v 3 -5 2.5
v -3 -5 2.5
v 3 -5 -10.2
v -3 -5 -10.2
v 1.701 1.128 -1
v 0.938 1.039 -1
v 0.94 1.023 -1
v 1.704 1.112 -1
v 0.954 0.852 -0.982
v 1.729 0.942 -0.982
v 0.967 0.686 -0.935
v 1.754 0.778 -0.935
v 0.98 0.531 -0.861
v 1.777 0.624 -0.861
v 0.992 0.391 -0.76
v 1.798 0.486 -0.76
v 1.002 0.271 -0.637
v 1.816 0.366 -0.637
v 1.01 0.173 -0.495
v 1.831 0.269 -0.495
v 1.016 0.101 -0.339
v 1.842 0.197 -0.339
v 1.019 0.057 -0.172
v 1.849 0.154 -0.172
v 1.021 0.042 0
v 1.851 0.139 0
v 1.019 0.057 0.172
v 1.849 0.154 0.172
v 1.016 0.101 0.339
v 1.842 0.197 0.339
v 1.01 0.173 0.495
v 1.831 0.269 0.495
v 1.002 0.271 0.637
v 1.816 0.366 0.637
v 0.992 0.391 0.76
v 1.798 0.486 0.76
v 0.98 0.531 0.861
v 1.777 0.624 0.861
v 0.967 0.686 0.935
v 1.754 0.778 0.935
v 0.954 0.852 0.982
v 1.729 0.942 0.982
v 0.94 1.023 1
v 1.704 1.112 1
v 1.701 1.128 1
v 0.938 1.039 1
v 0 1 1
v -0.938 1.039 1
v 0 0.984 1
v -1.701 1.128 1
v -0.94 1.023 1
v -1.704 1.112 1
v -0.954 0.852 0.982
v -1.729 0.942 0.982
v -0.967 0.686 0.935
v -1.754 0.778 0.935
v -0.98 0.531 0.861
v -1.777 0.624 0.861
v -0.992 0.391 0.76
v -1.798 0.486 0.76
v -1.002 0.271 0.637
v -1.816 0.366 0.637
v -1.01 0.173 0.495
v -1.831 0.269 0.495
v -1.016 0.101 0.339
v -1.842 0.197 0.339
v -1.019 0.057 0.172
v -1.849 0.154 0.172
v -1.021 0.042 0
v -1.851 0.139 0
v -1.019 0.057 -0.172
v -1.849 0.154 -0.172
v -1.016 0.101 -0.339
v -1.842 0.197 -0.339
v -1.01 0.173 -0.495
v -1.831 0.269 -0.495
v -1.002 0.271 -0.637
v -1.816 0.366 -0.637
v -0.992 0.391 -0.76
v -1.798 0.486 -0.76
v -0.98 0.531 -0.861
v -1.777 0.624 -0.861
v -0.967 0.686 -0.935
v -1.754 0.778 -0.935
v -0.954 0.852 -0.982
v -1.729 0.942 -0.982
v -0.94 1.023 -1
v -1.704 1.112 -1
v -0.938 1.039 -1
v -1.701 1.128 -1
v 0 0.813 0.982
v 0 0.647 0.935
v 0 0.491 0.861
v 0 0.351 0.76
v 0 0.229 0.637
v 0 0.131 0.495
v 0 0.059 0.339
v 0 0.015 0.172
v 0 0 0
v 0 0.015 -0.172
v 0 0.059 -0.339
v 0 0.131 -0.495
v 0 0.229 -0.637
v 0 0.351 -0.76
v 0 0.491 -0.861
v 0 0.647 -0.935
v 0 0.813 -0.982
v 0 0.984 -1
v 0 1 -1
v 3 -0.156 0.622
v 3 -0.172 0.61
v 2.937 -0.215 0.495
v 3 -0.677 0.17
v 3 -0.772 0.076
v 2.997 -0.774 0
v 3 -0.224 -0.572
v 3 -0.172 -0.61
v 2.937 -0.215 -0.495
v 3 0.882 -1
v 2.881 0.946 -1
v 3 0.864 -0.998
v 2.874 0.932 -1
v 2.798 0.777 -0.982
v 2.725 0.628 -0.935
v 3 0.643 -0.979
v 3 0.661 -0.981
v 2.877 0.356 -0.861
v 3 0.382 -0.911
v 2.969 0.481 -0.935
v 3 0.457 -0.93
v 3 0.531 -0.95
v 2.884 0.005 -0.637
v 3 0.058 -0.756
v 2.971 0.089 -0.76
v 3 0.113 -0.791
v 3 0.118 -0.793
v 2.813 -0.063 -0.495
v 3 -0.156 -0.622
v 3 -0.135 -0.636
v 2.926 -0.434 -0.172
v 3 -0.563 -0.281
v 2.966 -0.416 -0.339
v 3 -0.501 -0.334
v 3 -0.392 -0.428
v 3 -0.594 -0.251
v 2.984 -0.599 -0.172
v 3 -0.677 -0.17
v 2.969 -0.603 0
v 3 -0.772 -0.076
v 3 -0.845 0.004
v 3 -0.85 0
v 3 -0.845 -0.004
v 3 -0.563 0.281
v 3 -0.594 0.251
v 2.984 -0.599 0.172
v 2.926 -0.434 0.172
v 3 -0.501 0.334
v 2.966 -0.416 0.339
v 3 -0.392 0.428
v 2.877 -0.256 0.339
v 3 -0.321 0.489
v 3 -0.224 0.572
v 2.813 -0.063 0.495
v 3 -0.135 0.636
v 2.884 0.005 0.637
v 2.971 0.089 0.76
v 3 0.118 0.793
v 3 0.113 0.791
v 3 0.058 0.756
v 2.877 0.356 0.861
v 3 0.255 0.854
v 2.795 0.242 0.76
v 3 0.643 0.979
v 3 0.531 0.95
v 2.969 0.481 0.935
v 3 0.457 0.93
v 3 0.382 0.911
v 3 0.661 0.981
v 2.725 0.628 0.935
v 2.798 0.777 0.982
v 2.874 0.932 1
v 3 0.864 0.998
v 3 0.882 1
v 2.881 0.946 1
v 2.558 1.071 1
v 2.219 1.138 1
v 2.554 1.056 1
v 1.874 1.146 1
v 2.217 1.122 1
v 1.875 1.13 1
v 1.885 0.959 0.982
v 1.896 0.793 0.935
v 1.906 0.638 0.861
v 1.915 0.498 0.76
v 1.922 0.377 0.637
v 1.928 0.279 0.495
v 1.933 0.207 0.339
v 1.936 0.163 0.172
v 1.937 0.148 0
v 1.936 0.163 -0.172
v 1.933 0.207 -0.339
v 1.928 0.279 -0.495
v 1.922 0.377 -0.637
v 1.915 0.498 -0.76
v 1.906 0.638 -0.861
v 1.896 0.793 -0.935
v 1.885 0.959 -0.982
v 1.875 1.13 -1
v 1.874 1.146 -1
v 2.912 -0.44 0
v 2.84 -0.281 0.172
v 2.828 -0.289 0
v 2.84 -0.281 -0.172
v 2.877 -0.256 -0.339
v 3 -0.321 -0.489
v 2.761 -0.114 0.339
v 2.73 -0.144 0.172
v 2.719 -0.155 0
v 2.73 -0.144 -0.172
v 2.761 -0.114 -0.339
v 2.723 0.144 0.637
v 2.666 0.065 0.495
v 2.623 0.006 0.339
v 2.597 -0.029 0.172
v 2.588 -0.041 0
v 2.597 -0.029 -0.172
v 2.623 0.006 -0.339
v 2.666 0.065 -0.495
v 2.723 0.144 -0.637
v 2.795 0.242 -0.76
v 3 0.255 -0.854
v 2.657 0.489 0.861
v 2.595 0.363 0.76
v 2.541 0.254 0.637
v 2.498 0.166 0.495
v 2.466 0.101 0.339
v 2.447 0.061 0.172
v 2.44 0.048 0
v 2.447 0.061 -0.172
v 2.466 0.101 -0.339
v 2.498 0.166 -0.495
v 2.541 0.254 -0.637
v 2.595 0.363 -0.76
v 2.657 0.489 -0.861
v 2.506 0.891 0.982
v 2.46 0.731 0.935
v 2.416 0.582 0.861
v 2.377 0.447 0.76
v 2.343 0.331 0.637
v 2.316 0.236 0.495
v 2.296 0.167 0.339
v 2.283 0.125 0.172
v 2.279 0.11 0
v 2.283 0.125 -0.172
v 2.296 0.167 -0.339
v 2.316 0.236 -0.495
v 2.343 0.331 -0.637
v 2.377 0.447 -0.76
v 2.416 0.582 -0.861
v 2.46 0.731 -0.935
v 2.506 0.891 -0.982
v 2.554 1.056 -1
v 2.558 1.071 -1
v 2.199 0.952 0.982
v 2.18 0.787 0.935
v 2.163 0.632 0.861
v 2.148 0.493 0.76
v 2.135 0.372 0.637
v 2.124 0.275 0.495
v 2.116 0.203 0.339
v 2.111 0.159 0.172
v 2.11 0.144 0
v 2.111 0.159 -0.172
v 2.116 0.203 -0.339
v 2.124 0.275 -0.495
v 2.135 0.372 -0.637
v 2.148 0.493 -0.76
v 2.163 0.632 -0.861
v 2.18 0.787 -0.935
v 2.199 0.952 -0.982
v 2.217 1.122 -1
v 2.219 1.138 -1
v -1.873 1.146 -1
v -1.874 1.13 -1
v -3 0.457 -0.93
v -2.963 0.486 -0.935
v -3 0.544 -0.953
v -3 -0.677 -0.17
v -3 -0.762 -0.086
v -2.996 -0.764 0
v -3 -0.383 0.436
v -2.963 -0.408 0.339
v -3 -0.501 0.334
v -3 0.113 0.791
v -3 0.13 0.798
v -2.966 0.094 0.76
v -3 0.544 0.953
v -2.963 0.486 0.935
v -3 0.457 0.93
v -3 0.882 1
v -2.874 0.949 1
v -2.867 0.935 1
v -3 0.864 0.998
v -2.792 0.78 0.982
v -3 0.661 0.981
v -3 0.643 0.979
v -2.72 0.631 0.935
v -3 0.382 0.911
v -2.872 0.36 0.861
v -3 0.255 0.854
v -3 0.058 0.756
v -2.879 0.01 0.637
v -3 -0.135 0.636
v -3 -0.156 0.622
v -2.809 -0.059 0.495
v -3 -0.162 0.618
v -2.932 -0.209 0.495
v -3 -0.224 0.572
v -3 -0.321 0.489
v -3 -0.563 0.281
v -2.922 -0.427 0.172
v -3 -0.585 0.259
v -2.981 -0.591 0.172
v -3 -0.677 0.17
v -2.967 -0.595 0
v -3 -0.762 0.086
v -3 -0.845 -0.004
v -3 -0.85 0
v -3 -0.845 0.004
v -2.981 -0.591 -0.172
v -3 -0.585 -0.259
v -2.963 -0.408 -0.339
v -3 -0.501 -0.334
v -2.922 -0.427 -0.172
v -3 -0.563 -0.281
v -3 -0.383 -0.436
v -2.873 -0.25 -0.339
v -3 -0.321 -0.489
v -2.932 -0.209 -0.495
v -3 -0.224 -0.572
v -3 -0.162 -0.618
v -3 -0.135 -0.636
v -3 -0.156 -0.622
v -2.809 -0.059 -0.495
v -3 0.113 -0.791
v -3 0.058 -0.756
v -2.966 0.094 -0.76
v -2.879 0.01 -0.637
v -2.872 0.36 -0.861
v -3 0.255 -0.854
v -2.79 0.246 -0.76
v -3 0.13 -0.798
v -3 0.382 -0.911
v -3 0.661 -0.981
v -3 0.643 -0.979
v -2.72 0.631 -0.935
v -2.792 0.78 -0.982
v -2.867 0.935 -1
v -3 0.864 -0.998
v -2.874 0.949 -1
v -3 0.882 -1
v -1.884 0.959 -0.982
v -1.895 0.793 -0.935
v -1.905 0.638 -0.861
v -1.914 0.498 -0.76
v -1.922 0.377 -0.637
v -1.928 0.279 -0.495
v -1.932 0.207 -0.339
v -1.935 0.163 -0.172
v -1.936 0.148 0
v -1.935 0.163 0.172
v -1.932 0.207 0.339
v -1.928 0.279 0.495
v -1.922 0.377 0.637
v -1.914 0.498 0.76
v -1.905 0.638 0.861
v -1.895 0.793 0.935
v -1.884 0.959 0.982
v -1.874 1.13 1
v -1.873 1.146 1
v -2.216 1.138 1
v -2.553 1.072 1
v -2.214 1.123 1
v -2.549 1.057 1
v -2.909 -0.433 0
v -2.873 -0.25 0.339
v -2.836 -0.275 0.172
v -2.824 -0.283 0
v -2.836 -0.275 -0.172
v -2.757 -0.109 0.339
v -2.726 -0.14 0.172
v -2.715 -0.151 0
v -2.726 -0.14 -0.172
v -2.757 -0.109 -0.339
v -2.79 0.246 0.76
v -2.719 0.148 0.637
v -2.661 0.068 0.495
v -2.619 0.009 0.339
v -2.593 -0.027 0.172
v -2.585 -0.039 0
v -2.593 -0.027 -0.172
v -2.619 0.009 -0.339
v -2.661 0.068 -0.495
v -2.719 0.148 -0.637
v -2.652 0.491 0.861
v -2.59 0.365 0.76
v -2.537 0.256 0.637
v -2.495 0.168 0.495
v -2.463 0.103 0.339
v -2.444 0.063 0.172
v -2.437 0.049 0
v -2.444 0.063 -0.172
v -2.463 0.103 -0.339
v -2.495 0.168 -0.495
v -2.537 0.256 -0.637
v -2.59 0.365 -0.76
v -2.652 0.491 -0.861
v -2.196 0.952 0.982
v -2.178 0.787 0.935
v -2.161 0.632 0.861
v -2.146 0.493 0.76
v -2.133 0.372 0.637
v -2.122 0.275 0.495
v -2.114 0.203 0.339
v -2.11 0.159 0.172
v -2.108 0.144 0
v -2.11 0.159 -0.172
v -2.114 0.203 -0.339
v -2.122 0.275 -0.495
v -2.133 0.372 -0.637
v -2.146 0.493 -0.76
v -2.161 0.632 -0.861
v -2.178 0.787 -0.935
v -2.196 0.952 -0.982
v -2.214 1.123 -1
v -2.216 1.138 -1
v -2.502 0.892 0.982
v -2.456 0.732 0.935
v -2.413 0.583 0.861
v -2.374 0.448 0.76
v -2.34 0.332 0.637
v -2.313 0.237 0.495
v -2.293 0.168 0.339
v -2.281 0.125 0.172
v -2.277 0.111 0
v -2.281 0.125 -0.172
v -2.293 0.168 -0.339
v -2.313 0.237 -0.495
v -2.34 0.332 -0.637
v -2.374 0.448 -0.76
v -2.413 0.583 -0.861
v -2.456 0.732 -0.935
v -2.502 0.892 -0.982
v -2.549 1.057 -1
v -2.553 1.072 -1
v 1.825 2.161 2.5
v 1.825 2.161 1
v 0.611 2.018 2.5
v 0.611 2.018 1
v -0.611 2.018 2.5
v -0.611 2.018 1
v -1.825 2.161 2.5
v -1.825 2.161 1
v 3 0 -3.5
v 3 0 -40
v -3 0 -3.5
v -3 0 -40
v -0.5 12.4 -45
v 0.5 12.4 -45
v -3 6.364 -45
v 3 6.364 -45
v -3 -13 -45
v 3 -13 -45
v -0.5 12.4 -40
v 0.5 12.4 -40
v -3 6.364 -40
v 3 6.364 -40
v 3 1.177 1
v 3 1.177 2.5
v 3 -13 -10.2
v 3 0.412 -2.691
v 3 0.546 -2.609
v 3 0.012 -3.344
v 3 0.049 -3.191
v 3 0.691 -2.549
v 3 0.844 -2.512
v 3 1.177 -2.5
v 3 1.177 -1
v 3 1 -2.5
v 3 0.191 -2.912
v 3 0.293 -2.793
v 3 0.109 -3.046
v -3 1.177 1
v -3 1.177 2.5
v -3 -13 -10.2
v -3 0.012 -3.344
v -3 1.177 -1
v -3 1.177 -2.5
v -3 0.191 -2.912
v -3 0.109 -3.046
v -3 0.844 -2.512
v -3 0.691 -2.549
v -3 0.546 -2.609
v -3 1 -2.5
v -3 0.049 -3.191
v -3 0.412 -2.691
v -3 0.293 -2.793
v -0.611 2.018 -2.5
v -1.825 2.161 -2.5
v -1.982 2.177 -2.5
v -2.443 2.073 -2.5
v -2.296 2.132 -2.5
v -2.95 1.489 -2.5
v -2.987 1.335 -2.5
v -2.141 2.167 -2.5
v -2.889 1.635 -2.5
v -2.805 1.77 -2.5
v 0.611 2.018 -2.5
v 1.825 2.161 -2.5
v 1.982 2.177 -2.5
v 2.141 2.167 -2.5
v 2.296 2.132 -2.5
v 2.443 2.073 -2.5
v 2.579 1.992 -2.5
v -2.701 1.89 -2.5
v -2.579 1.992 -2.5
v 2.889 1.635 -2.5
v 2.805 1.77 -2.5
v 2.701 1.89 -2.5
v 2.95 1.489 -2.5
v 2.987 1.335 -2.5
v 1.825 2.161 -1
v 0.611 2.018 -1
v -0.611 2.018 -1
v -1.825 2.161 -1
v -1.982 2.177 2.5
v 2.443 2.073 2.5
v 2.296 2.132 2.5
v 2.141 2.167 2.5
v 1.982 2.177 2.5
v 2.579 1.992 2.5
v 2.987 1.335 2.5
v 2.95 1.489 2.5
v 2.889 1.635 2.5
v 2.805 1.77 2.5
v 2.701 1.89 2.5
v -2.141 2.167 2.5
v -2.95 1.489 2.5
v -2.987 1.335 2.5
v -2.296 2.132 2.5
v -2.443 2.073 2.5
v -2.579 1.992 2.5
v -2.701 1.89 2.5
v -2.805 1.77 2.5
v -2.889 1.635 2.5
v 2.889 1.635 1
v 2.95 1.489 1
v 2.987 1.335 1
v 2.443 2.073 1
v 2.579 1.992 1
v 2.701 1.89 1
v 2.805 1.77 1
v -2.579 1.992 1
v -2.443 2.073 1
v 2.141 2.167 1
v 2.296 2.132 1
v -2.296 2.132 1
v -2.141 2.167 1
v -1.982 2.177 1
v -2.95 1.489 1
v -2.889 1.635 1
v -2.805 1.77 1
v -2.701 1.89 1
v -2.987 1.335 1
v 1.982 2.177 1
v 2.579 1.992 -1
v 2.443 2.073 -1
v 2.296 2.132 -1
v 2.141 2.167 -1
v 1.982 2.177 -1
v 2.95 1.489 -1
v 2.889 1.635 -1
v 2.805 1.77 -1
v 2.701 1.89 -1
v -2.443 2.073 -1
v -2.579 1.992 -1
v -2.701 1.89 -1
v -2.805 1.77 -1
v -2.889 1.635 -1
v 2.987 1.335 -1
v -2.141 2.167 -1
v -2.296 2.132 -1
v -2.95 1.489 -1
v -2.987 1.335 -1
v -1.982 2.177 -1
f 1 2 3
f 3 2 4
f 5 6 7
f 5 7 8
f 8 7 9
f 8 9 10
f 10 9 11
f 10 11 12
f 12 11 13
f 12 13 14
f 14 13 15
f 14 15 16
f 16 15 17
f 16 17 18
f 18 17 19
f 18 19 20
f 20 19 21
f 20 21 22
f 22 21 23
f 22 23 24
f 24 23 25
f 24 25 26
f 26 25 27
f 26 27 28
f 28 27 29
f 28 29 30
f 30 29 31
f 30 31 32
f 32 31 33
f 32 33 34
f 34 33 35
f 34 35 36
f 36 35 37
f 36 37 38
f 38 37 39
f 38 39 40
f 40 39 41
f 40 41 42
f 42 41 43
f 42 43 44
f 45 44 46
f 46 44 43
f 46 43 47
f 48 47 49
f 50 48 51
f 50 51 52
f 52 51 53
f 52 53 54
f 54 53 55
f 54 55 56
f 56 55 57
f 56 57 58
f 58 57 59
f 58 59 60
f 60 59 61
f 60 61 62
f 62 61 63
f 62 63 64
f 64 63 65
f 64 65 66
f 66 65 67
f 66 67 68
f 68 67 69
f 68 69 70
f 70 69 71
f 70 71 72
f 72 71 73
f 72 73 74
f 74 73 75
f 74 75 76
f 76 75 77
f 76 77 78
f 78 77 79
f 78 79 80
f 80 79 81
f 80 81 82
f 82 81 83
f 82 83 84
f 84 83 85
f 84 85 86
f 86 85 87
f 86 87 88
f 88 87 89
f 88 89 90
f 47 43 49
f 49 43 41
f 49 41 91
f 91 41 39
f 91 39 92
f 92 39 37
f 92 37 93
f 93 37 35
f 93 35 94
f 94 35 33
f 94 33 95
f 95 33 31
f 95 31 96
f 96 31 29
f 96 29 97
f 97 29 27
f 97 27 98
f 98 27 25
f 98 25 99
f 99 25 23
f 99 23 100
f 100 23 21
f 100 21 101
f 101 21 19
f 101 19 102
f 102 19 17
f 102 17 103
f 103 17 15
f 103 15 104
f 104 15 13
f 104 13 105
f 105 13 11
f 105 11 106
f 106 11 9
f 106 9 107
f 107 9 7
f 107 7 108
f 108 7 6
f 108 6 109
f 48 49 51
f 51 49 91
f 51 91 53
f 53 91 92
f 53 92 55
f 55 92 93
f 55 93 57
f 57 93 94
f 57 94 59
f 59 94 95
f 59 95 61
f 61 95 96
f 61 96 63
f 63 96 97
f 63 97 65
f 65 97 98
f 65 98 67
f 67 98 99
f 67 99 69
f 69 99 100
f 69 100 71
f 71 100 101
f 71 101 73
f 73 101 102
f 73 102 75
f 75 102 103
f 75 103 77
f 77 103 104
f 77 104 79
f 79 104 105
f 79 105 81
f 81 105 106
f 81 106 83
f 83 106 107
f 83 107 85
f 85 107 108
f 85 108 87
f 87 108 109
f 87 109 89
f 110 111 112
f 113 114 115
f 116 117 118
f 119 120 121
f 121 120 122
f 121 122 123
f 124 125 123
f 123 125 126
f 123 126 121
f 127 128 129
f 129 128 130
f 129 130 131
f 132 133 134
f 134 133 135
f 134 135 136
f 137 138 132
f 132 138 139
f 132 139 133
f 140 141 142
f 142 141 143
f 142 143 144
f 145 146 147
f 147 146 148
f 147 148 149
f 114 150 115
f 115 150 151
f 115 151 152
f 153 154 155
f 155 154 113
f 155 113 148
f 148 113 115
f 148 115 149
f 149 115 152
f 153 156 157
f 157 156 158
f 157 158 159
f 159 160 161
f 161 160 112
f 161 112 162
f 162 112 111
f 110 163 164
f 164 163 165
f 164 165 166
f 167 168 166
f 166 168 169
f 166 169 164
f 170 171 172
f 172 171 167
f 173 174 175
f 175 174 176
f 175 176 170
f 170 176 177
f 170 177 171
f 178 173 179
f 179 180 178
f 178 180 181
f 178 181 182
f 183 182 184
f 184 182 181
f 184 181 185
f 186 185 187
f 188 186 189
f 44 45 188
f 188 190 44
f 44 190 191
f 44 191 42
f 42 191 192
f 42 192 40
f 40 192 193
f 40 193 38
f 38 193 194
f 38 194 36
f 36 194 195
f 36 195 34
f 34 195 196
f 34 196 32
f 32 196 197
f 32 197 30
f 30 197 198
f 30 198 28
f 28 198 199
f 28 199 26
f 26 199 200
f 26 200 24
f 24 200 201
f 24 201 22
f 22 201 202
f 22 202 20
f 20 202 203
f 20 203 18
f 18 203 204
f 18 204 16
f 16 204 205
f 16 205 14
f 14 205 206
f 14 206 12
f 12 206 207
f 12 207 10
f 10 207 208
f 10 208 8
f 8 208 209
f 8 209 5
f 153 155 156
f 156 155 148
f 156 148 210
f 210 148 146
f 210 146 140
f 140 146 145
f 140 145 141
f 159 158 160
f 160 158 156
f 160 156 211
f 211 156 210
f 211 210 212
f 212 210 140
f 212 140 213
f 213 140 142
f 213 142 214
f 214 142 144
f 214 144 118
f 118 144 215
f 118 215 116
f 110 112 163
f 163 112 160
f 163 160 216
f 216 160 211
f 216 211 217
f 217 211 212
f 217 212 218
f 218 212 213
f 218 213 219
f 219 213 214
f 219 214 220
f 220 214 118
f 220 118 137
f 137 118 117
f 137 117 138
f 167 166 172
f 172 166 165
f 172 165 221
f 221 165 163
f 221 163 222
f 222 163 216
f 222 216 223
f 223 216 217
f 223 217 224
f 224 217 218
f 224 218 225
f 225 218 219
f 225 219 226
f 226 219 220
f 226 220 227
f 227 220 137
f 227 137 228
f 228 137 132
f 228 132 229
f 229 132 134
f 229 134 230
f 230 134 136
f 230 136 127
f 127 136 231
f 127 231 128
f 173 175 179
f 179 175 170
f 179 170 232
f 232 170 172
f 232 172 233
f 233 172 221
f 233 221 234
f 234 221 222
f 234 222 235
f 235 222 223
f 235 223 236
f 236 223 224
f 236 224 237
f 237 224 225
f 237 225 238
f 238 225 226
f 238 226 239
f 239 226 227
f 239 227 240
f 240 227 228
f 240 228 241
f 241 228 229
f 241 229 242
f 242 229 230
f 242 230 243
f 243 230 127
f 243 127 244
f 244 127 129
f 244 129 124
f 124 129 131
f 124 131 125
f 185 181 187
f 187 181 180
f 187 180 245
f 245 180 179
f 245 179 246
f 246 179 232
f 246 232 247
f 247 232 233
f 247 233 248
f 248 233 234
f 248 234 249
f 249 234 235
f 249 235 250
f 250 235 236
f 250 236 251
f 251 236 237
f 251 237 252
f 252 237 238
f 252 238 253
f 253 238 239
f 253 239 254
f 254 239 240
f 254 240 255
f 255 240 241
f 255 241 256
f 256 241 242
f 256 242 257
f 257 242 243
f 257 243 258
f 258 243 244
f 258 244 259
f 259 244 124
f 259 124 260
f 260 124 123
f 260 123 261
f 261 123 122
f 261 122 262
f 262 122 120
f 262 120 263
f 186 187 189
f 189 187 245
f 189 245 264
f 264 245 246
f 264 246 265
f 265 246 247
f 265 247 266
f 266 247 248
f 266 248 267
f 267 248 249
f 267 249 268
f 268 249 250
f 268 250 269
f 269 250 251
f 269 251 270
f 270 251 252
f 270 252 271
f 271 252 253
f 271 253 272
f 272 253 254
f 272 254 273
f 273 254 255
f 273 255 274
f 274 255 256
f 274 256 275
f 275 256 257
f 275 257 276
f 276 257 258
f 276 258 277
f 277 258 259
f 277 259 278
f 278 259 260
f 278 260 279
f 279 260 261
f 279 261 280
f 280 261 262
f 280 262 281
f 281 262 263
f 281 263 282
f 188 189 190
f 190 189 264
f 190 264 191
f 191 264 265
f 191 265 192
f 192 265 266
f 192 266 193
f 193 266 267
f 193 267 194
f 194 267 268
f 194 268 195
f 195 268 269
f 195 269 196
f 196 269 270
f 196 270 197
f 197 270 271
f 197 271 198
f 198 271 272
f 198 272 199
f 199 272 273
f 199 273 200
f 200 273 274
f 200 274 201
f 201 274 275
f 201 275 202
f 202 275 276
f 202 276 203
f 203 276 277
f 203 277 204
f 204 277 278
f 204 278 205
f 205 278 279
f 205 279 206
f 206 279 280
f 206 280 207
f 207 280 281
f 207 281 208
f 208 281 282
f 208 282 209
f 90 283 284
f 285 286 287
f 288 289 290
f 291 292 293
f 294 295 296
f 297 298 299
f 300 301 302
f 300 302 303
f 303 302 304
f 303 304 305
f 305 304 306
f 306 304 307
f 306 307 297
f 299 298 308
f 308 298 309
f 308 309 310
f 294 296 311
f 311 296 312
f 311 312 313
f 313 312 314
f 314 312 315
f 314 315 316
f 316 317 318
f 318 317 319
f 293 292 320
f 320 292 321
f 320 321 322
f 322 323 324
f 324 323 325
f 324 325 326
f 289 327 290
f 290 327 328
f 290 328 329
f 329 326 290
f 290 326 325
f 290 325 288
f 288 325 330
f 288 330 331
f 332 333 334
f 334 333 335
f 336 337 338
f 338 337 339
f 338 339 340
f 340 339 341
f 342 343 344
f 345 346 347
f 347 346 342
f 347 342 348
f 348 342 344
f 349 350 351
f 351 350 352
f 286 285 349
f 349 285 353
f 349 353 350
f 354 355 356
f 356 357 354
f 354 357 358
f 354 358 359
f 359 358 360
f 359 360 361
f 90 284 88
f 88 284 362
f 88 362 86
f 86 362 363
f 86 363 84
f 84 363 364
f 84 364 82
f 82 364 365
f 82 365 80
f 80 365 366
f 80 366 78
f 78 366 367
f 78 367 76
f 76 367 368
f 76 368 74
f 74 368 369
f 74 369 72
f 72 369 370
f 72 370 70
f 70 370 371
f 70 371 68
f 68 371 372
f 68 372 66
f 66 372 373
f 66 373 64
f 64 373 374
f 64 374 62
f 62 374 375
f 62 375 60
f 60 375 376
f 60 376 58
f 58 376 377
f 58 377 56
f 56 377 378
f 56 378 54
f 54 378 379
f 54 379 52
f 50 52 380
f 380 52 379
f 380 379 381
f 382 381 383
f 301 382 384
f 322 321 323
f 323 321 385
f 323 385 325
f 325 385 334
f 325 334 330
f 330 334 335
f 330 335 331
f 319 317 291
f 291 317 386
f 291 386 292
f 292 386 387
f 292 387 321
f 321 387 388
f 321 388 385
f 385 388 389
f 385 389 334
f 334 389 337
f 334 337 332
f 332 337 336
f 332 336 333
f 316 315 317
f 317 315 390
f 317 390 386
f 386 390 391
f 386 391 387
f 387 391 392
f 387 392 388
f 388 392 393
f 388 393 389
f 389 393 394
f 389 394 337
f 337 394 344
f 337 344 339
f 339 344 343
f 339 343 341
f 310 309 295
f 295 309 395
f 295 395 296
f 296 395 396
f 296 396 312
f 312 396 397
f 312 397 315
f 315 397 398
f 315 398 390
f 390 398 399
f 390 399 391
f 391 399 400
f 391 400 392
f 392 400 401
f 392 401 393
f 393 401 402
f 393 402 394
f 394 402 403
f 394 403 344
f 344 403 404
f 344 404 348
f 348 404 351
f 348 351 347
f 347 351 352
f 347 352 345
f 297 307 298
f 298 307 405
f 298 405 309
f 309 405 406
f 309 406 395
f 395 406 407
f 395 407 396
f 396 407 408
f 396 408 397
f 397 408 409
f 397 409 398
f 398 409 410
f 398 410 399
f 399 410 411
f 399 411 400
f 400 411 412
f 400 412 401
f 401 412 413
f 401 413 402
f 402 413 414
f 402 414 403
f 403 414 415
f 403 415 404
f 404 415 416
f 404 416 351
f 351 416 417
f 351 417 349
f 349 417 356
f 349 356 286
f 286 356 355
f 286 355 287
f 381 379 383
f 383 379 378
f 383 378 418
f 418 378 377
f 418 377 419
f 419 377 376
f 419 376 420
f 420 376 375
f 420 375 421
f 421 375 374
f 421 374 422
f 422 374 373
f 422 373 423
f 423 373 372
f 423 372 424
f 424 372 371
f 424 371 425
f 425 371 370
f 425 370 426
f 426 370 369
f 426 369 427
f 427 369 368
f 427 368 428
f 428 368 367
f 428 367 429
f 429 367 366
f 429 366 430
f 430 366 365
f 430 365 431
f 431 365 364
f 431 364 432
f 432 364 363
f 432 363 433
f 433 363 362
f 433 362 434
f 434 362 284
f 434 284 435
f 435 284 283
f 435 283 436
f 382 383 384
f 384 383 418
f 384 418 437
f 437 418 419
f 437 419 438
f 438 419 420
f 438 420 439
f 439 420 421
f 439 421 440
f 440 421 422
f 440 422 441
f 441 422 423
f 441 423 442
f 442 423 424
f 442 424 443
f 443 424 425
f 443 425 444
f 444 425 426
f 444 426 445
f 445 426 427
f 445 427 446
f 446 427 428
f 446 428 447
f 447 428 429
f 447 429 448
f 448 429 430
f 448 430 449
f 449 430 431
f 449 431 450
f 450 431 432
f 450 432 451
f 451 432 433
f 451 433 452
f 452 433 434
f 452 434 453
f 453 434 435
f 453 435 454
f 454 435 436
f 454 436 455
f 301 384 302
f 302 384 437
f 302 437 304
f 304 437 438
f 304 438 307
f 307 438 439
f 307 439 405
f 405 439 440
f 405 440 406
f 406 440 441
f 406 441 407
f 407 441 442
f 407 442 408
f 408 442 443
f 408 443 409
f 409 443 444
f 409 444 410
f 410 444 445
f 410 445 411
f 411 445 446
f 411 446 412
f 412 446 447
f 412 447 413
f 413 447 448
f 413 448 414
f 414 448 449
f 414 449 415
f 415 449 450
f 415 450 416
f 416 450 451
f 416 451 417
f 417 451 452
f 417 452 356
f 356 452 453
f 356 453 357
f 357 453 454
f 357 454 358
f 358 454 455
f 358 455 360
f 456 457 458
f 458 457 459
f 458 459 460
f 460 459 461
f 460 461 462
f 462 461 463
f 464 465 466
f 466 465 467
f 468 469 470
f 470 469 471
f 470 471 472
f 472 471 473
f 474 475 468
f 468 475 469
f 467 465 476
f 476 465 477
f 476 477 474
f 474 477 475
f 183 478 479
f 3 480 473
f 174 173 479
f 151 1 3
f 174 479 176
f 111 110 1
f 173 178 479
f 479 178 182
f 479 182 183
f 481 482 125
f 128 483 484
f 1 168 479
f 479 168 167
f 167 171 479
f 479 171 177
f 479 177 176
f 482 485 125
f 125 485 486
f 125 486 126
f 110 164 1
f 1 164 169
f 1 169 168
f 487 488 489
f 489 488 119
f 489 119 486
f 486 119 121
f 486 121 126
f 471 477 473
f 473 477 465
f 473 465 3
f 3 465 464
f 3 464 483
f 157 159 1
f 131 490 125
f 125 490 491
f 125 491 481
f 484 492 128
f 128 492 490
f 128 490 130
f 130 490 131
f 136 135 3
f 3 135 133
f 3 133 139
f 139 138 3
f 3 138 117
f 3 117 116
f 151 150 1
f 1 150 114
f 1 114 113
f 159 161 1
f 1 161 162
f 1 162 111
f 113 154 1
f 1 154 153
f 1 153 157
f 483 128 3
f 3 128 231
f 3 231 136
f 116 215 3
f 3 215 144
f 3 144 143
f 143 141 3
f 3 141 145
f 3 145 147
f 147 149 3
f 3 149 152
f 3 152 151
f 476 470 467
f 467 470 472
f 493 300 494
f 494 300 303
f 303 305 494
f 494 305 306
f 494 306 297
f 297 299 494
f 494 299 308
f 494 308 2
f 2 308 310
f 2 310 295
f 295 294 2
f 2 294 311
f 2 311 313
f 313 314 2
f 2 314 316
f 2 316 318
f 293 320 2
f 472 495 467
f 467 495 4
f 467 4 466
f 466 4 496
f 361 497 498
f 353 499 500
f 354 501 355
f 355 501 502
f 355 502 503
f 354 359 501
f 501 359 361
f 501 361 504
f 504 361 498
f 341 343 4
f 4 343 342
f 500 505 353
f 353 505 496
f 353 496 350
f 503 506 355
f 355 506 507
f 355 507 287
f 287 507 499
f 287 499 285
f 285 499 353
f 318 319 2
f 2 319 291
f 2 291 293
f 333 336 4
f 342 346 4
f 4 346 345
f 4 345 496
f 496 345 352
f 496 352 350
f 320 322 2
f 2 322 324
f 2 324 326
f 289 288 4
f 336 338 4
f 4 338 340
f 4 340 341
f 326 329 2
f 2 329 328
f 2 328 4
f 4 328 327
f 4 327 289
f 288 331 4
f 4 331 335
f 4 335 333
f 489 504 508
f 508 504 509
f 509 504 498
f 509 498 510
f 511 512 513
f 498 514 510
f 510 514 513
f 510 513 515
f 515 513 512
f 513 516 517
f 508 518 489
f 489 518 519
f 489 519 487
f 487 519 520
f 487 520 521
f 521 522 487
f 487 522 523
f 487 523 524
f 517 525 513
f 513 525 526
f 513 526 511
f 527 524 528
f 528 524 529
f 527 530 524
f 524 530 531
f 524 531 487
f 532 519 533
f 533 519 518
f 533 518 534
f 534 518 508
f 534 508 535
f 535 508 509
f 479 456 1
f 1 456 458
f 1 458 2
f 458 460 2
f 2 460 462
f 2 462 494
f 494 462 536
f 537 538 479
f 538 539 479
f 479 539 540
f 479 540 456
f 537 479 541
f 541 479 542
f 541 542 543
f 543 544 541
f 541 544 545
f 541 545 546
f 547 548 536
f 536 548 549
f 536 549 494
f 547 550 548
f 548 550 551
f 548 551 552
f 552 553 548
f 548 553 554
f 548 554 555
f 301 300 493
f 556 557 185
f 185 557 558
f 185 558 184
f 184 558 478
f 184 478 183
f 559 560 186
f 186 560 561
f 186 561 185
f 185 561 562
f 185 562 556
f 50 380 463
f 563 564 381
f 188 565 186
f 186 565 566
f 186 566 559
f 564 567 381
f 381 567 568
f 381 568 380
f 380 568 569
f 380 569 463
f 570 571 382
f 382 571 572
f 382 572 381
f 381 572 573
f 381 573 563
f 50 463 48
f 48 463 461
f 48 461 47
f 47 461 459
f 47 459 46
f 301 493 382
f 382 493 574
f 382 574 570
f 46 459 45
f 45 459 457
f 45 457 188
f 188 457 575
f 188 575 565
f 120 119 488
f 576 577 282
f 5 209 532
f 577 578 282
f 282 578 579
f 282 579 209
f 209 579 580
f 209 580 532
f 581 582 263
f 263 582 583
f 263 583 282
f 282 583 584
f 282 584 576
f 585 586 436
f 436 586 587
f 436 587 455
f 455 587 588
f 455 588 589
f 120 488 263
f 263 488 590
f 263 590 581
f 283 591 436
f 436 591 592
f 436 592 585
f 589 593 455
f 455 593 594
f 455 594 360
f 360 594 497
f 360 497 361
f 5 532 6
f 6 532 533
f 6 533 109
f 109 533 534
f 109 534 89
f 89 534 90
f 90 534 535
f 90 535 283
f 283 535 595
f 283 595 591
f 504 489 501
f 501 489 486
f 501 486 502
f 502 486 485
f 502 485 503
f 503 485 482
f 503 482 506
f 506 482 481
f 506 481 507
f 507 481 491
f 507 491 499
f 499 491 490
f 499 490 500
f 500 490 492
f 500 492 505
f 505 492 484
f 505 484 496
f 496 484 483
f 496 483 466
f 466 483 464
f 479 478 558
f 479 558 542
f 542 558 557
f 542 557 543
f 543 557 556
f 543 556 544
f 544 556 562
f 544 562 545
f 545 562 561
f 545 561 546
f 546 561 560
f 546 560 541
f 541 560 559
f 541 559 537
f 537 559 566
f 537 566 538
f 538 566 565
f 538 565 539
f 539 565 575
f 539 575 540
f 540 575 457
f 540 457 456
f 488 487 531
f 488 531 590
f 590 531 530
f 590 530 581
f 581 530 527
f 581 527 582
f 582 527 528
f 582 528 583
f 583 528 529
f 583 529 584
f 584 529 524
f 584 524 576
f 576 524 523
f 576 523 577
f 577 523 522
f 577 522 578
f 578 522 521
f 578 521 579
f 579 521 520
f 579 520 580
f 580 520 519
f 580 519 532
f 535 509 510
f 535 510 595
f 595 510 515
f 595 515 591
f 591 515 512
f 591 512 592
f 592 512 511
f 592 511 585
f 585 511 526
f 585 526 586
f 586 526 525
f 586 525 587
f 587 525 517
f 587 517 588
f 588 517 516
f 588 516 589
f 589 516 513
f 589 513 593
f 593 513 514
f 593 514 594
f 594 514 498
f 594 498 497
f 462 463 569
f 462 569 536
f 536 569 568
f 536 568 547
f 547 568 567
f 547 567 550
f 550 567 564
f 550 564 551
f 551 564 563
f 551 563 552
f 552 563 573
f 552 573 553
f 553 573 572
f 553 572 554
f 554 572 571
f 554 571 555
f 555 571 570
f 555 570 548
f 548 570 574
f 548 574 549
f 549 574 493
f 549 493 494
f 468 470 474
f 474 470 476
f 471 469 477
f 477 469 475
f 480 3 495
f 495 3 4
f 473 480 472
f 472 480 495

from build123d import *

# Parameters (mm, degrees)
BOSS_EXTRUDE1_DEPTH = 3
BOSS_EXTRUDE2_DEPTH = 2.5
SKETCH4_W           = 2
SKETCH4_H           = 2.442088572
FILLET1_R           = 1
FILLET2_R           = 1
CUT_EXTRUDE2_DEPTH  = 5
SKETCH6_W           = 34.8
SKETCH6_H           = 8
BOSS_EXTRUDE3_DEPTH = 3


with BuildPart() as part:
    # Sketch2 → Boss-Extrude1 (new, symmetric)
    with BuildSketch(Plane(origin=(0, 0, 0), x_dir=(0, 0, -1), z_dir=(1, 0, 0))):
        Polygon((0, 0), (40, 0), (40, 12.4), (45, 12.4), (45, -5), (0, -5), align=None)
    extrude(amount=BOSS_EXTRUDE1_DEPTH, both=True)

    # Sketch3 → Boss-Extrude2 (add, symmetric)
    with BuildSketch(Plane.XY):
        with BuildLine():
            Line((-3, 2.442088572), (-3, -5))
            Line((-3, -5), (3, -5))
            Line((3, -5), (3, 2.442088572))
            ThreePointArc((3, 2.442088572), (0, 2), (-3, 2.442088572))
        make_face()
    extrude(amount=BOSS_EXTRUDE2_DEPTH, both=True)

    # Sketch4 → Cut-Revolve1 (revolve, cut)
    with BuildSketch(Plane(origin=(0, 0, 0), x_dir=(0, 0, -1), z_dir=(1, 0, 0))):
        with Locations((0, 1.221044286)):
            Rectangle(SKETCH4_W, SKETCH4_H)
    revolve(axis=Axis((0, 12.4, 0), (0, 0, -1)), mode=Mode.SUBTRACT)

    # Fillet1
    fillet1_edges = [part.edges().sort_by_distance(p)[0] for p in [
        (-3, 2.442088572, 1.75),
        (0, 0, -2.5),
        (3, 2.442088572, 1.75),
        (-3, 2.442088572, -1.75),
        (3, 2.442088572, -1.75),
        (-3, 0.368375006, 0),
        (3, 0.368375006, 0),
    ]]
    fillet(fillet1_edges, radius=FILLET1_R)

    # Fillet2
    # the kernel refuses this fillet: 1 mm, written as the material it adds along each edge
    with BuildSketch(Plane(origin=(0, 12.4, -1), x_dir=(-0.14925373134328332, -0.9887989298538439, 0), z_dir=(-0.9887989298538439, 0.14925373134328332, 0))) as fillet2_piece_1:
        with BuildLine():
            CenterArc((12.4 - FILLET2_R, FILLET2_R), FILLET2_R, 270, 90)
            Line((12.4 - FILLET2_R, 0), (12.4, 0))
            Line((12.4, 0), (12.4, FILLET2_R))
        make_face()
    revolve(axis=Axis((0, 12.4, -1), (0, 0, 1)), revolution_arc=17.167363371)
    with BuildSketch(Plane(origin=(0, 12.4, 1), x_dir=(-0.14925373134328332, -0.9887989298538439, 0), z_dir=(-0.9887989298538439, 0.14925373134328332, 0))) as fillet2_piece_2:
        with BuildLine():
            CenterArc((12.4 - FILLET2_R, -FILLET2_R), FILLET2_R, 0, 90)
            Line((12.4 - FILLET2_R, 0), (12.4, 0))
            Line((12.4, 0), (12.4, -FILLET2_R))
        make_face()
    revolve(axis=Axis((0, 12.4, 1), (0, 0, 1)), revolution_arc=17.167363371)
    with BuildSketch(Plane(origin=(2, -0.84990566, -1), x_dir=(-0.8018642143213413, -0.5975063027205807, 0), z_dir=(-0.5975063027205807, 0.8018642143213413, 0))) as fillet2_piece_3_section:
        with BuildLine():
            CenterArc((1 + FILLET2_R, FILLET2_R), FILLET2_R, 180, 90)
            Line((1, FILLET2_R), (1, 0))
            Line((1, 0), (1 + FILLET2_R, 0))
        make_face()
    fillet2_piece_3 = revolve(axis=Axis((2, -0.84990566, -1), (0, 0, 1)), revolution_arc=241.892173959, mode=Mode.PRIVATE)
    fillet2_piece_3 = split(fillet2_piece_3, bisect_by=Plane(origin=(3, -0.02635607, -0.708719326), z_dir=(-1, 0, 0)), keep=Keep.TOP, mode=Mode.PRIVATE)
    add(fillet2_piece_3)
    with BuildSketch(Plane(origin=(2, -0.84990566, 1), x_dir=(-0.8018642143213406, -0.5975063027205816, 0), z_dir=(-0.5975063027205816, 0.8018642143213406, 0))) as fillet2_piece_4_section:
        with BuildLine():
            CenterArc((1 + FILLET2_R, -FILLET2_R), FILLET2_R, 90, 90)
            Line((1 + FILLET2_R, 0), (1, 0))
            Line((1, 0), (1, -FILLET2_R))
        make_face()
    fillet2_piece_4 = revolve(axis=Axis((2, -0.84990566, 1), (0, 0, 1)), revolution_arc=241.892173959, mode=Mode.PRIVATE)
    fillet2_piece_4 = split(fillet2_piece_4, bisect_by=Plane(origin=(3, -0.026356063, 0.70871933), z_dir=(-1, 0, 0)), keep=Keep.TOP, mode=Mode.PRIVATE)
    add(fillet2_piece_4)
    with BuildSketch(Plane(origin=(-2, -0.84990566, -1), x_dir=(0.8018642143213416, -0.5975063027205804, 0), z_dir=(0.5975063027205804, 0.8018642143213416, 0))) as fillet2_piece_5_section:
        with BuildLine():
            CenterArc((1 + FILLET2_R, -FILLET2_R), FILLET2_R, 90, 90)
            Line((1 + FILLET2_R, 0), (1, 0))
            Line((1, 0), (1, -FILLET2_R))
        make_face()
    fillet2_piece_5 = revolve(axis=Axis((-2, -0.84990566, -1), (0, 0, -1)), revolution_arc=241.892173959, mode=Mode.PRIVATE)
    fillet2_piece_5 = split(fillet2_piece_5, bisect_by=Plane(origin=(-3, -0.026356035, -0.70871925), z_dir=(1, 0, 0)), keep=Keep.TOP, mode=Mode.PRIVATE)
    add(fillet2_piece_5)
    with BuildSketch(Plane(origin=(-2, -0.84990566, 1), x_dir=(0.8018642143213416, -0.5975063027205804, 0), z_dir=(0.5975063027205804, 0.8018642143213416, 0))) as fillet2_piece_6_section:
        with BuildLine():
            CenterArc((1 + FILLET2_R, FILLET2_R), FILLET2_R, 180, 90)
            Line((1 + FILLET2_R, 0), (1, 0))
            Line((1, 0), (1, FILLET2_R))
        make_face()
    fillet2_piece_6 = revolve(axis=Axis((-2, -0.84990566, 1), (0, 0, -1)), revolution_arc=241.892173959, mode=Mode.PRIVATE)
    fillet2_piece_6 = split(fillet2_piece_6, bisect_by=Plane(origin=(-3, -0.026356028, 0.708719255), z_dir=(1, 0, 0)), keep=Keep.TOP, mode=Mode.PRIVATE)
    add(fillet2_piece_6)

    # Sketch5 → Cut-Extrude2 (cut)
    with BuildSketch(Plane.XY.offset(-40)):
        Polygon((3, 6.364466094), (0.5, 12.4), (3, 12.4), align=None)
        Polygon((-0.5, 12.4), (-3, 6.364466094), (-3, 12.4), align=None)
    extrude(amount=-CUT_EXTRUDE2_DEPTH, mode=Mode.SUBTRACT)

    # Sketch6 → Boss-Extrude3 (add, symmetric)
    with BuildSketch(Plane(origin=(0, 0, 0), x_dir=(0, 0, -1), z_dir=(1, 0, 0))):
        with Locations((27.6, -9)):
            Rectangle(SKETCH6_W, SKETCH6_H)
    extrude(amount=BOSS_EXTRUDE3_DEPTH, both=True)


solid = part.part
